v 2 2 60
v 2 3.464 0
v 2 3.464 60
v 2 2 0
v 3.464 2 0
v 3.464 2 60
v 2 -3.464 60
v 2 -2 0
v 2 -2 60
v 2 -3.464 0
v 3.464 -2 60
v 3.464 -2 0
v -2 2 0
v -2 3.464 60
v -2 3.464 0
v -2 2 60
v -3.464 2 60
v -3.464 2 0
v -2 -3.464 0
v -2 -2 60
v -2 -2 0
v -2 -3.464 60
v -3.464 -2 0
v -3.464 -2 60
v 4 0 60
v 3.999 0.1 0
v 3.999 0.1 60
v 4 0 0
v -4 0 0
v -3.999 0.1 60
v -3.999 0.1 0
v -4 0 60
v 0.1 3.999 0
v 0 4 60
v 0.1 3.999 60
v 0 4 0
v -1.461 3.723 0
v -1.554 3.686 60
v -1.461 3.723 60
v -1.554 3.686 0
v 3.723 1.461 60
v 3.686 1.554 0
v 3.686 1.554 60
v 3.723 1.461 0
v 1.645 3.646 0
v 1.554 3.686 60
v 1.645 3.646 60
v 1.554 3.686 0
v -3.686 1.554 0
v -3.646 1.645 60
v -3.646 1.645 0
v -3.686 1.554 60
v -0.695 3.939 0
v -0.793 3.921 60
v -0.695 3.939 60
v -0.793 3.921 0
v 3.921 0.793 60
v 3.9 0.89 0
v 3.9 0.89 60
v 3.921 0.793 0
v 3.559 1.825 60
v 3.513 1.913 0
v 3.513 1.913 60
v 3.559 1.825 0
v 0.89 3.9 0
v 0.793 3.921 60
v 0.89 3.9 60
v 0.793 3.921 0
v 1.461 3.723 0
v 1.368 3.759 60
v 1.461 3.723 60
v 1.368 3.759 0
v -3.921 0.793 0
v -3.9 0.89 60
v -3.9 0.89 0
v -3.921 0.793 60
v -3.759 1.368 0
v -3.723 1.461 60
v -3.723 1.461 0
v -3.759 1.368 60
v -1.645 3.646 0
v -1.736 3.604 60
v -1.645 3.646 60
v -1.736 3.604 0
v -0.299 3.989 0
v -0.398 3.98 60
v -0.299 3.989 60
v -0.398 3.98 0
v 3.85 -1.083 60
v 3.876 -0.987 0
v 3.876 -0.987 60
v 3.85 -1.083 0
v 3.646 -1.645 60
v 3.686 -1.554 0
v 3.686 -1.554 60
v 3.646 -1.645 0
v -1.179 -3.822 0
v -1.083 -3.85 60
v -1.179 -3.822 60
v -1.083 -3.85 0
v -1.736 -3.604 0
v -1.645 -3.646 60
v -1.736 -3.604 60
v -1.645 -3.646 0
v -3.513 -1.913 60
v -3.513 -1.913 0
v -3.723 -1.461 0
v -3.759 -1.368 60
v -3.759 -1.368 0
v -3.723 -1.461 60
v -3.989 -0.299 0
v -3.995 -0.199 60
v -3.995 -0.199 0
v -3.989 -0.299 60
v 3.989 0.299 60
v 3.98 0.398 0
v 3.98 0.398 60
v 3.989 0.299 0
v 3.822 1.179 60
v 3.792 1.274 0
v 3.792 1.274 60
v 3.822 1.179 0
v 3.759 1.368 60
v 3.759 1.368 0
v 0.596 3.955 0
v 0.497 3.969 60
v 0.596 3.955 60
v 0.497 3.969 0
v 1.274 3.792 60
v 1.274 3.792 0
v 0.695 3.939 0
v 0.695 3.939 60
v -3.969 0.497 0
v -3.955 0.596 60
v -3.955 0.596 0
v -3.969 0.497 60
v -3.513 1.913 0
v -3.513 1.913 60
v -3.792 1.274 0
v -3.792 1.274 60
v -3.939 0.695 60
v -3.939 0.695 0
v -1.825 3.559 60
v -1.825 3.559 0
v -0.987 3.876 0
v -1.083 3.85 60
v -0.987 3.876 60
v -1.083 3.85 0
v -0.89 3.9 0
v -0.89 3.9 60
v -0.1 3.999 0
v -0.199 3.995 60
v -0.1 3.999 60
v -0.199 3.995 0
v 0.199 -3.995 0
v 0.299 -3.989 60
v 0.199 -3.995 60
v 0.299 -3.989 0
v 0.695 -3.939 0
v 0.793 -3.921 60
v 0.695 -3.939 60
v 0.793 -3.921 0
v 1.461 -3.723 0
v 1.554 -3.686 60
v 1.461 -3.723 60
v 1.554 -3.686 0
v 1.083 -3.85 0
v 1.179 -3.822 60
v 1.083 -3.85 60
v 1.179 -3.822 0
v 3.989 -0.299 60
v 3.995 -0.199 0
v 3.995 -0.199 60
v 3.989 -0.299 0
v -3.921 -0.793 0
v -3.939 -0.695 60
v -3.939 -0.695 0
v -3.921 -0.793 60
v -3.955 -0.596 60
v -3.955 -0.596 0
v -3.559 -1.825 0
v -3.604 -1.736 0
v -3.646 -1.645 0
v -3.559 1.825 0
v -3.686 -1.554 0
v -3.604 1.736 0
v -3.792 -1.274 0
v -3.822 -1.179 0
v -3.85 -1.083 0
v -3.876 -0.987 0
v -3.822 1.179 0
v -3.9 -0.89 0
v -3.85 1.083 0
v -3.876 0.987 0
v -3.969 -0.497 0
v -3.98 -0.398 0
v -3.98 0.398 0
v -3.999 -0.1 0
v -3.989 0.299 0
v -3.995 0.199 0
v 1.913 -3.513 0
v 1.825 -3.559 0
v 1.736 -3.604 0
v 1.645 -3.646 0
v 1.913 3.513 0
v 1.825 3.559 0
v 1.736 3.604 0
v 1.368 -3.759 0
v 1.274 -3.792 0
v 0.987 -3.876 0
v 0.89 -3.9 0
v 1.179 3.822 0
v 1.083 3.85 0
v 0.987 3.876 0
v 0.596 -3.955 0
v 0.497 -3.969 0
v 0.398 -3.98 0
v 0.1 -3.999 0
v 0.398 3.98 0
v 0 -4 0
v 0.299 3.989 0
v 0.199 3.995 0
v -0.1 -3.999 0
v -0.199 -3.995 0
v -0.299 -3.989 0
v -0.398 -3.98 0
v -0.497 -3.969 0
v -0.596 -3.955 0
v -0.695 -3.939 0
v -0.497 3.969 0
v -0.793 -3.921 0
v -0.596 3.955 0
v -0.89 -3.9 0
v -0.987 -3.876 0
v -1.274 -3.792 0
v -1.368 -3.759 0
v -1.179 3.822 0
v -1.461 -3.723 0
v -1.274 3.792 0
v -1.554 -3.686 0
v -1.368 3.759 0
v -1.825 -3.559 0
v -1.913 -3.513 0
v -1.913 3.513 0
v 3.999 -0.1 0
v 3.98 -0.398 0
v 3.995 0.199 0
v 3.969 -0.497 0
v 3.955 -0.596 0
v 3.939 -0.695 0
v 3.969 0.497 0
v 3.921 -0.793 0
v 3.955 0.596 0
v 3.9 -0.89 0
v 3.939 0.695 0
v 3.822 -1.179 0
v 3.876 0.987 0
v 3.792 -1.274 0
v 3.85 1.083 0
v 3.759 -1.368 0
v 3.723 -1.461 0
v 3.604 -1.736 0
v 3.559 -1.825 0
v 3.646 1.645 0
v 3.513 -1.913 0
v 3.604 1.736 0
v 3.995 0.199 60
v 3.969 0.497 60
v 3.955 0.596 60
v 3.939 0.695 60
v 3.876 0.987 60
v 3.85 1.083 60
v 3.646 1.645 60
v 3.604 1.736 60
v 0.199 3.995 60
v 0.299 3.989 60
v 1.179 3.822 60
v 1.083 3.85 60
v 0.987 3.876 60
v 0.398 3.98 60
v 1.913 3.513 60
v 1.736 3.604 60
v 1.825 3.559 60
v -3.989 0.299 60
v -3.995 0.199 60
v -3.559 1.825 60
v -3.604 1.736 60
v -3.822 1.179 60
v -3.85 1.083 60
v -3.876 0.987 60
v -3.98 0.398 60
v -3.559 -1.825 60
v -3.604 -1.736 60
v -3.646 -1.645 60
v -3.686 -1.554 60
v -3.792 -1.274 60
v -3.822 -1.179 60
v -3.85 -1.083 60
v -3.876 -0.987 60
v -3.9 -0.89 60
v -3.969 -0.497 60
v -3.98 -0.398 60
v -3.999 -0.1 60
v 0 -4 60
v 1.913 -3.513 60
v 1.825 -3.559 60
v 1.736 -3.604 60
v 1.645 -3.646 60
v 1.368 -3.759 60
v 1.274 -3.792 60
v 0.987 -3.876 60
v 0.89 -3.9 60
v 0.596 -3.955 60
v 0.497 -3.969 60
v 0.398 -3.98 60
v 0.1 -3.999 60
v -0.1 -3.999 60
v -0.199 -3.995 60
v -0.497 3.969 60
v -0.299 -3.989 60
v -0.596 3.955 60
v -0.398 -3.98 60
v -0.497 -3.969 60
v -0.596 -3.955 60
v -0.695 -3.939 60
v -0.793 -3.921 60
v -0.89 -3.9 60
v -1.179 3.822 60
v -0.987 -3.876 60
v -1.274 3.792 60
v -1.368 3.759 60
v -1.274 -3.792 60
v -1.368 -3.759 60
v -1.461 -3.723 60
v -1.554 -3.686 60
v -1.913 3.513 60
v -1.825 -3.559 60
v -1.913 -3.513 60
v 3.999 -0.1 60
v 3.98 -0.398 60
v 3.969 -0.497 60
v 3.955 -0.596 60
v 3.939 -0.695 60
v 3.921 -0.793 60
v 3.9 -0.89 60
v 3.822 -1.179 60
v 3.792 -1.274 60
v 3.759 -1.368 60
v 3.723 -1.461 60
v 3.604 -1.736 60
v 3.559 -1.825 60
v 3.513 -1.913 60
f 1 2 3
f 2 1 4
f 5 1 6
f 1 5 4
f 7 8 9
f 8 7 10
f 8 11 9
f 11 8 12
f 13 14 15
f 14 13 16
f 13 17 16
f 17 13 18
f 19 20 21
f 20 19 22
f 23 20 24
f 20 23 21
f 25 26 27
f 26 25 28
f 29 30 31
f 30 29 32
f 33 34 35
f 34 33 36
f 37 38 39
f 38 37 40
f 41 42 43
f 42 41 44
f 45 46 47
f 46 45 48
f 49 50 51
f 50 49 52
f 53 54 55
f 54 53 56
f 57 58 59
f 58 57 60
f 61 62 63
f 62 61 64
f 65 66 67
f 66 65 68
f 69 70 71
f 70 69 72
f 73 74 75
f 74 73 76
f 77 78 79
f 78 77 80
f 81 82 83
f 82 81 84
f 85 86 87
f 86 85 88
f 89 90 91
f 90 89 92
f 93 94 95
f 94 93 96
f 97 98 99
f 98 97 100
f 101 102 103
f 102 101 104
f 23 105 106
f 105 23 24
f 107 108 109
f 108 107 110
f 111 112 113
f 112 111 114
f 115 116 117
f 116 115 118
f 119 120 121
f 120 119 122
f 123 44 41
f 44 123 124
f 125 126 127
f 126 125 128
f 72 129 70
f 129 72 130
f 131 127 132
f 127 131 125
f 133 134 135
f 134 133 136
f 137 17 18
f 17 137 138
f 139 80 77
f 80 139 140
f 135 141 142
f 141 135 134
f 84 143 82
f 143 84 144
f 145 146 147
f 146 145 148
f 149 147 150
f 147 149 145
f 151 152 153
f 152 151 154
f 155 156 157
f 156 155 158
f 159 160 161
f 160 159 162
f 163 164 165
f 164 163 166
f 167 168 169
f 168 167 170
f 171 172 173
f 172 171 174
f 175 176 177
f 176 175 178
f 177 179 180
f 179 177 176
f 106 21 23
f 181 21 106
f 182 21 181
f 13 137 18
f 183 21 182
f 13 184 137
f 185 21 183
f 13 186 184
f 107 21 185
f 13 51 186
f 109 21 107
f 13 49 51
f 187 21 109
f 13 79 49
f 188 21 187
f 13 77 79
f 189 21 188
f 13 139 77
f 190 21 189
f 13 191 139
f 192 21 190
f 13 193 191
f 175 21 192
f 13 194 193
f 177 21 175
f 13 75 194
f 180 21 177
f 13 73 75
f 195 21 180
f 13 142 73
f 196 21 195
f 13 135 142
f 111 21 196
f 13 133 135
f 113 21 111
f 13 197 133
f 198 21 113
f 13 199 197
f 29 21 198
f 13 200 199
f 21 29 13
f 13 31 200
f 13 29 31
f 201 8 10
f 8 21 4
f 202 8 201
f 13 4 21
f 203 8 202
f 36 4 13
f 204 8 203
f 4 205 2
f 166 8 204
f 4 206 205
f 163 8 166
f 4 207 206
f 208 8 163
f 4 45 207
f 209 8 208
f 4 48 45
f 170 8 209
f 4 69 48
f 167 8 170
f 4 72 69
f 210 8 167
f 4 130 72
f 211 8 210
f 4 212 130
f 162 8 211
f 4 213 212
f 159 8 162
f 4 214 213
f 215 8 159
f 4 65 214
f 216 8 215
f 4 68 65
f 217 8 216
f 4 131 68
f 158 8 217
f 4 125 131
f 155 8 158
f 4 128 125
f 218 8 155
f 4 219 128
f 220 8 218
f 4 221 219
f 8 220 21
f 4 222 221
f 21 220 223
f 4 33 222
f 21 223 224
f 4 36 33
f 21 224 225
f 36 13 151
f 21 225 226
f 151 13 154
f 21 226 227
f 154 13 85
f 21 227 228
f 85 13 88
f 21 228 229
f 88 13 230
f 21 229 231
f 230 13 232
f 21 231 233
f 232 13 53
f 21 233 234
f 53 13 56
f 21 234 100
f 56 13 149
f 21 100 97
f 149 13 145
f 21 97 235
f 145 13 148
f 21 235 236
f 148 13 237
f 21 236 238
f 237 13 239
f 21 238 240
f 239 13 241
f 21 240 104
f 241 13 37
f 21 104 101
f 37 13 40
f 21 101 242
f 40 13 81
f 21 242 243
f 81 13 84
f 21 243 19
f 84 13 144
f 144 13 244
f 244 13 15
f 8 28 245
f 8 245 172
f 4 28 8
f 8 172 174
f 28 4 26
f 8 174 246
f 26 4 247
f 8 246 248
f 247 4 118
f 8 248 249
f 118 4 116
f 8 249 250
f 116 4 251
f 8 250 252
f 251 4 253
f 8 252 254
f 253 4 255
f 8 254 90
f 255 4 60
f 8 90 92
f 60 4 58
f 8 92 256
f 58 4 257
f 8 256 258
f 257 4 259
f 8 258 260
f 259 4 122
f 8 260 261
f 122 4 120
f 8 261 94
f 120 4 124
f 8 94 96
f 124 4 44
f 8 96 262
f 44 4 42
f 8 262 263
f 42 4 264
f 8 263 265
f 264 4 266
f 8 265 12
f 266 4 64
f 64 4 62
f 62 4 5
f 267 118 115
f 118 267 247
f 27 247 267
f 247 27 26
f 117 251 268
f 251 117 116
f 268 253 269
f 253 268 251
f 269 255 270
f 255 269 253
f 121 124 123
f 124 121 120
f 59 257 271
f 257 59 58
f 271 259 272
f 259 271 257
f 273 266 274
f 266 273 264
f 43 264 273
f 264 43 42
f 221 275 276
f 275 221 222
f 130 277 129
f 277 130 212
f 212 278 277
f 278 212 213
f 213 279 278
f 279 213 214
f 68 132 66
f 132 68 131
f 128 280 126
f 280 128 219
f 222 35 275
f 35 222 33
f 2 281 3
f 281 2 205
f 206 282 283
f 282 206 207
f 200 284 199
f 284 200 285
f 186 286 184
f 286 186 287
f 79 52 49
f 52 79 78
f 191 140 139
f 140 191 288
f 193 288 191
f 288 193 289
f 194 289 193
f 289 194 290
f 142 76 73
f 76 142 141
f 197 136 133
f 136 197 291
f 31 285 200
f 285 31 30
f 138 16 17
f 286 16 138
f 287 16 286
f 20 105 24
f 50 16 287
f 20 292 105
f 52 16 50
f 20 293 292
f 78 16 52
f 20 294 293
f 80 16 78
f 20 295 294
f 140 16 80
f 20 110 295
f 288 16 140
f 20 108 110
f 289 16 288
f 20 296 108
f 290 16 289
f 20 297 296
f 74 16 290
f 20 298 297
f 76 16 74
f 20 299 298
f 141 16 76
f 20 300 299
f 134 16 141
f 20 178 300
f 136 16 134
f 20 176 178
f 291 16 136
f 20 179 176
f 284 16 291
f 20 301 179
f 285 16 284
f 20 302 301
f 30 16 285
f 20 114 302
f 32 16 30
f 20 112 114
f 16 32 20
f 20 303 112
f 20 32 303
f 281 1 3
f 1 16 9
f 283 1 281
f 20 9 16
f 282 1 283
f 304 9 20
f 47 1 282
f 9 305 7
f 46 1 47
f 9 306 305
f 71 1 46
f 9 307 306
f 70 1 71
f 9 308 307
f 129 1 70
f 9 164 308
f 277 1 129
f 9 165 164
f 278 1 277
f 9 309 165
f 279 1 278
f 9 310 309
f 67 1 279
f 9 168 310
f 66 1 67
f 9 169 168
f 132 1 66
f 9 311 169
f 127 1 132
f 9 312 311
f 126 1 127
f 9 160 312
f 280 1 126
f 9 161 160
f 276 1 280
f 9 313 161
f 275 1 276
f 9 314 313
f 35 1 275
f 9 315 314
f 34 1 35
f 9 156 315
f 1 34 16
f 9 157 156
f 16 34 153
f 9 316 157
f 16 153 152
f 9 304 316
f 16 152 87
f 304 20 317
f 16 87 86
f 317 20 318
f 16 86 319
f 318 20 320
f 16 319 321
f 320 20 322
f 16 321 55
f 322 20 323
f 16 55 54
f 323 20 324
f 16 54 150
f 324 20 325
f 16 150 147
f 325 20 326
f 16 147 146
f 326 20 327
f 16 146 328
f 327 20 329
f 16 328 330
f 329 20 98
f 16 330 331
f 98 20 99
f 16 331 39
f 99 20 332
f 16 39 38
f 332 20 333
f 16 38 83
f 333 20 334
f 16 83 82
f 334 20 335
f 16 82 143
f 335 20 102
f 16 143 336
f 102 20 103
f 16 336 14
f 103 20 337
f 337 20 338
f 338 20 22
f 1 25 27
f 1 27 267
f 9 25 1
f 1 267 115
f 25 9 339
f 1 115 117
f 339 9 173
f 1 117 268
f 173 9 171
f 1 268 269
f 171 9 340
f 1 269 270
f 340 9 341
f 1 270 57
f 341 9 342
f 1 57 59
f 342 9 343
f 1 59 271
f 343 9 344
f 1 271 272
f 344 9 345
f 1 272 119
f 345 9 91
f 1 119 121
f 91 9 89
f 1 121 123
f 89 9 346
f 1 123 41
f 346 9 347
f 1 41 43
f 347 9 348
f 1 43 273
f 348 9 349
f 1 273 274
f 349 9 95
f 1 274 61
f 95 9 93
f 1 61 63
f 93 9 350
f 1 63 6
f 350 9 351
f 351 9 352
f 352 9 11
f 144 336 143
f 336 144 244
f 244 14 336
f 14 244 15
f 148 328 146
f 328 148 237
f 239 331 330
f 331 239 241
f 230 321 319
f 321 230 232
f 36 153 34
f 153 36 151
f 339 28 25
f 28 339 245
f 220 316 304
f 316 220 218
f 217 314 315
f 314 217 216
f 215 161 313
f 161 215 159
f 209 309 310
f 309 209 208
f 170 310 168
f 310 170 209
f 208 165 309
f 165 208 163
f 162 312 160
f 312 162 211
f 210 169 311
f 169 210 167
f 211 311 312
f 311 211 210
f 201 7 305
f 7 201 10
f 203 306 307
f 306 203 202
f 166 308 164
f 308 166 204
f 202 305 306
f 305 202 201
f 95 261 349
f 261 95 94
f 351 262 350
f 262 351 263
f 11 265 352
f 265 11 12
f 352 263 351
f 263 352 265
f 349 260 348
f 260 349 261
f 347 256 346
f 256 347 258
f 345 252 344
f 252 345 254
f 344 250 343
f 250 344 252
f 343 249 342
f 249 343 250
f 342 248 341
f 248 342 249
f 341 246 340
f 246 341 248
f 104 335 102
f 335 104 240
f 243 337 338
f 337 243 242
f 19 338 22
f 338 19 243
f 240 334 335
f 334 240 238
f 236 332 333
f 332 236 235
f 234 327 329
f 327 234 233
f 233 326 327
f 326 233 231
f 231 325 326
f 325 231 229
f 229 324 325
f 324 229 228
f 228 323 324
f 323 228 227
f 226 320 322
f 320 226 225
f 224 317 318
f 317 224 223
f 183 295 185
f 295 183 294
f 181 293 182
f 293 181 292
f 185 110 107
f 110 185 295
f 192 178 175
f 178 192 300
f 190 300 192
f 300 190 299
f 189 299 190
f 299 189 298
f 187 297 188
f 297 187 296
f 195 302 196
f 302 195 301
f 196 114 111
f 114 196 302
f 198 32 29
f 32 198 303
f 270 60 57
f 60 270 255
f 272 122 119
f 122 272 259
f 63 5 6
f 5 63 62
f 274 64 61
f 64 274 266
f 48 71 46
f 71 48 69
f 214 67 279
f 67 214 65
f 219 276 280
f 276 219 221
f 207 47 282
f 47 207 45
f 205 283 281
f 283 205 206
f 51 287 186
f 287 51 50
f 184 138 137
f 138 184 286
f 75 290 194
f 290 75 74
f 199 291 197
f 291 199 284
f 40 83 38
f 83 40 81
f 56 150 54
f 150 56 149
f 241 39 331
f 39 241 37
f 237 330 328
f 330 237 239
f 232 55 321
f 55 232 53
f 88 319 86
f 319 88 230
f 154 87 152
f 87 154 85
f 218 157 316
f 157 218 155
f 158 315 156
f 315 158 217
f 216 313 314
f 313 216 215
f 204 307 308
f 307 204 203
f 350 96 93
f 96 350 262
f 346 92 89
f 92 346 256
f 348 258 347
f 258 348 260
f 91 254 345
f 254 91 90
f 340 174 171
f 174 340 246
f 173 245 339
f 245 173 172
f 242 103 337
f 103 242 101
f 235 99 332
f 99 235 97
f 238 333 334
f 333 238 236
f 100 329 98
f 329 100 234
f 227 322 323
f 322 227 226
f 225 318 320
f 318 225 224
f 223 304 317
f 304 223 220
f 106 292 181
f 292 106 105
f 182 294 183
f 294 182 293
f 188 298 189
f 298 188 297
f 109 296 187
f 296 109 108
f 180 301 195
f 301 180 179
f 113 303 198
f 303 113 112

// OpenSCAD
$fa=0.1;
$fs=0.1;

module axis(l,r) {
  rp=r/2;
  rn=-(r+r/2); 
  difference() {
    cylinder(l,r,r);
    union() {
      translate([rp,rp,-1]) cube([r,r,l+2]);
      translate([rp,rn,-1]) cube([r,r,l+2]);
      translate([rn,rp,-1]) cube([r,r,l+2]);
      translate([rn,rn,-1]) cube([r,r,l+2]);
    }
  }
}

axis(60,4);
